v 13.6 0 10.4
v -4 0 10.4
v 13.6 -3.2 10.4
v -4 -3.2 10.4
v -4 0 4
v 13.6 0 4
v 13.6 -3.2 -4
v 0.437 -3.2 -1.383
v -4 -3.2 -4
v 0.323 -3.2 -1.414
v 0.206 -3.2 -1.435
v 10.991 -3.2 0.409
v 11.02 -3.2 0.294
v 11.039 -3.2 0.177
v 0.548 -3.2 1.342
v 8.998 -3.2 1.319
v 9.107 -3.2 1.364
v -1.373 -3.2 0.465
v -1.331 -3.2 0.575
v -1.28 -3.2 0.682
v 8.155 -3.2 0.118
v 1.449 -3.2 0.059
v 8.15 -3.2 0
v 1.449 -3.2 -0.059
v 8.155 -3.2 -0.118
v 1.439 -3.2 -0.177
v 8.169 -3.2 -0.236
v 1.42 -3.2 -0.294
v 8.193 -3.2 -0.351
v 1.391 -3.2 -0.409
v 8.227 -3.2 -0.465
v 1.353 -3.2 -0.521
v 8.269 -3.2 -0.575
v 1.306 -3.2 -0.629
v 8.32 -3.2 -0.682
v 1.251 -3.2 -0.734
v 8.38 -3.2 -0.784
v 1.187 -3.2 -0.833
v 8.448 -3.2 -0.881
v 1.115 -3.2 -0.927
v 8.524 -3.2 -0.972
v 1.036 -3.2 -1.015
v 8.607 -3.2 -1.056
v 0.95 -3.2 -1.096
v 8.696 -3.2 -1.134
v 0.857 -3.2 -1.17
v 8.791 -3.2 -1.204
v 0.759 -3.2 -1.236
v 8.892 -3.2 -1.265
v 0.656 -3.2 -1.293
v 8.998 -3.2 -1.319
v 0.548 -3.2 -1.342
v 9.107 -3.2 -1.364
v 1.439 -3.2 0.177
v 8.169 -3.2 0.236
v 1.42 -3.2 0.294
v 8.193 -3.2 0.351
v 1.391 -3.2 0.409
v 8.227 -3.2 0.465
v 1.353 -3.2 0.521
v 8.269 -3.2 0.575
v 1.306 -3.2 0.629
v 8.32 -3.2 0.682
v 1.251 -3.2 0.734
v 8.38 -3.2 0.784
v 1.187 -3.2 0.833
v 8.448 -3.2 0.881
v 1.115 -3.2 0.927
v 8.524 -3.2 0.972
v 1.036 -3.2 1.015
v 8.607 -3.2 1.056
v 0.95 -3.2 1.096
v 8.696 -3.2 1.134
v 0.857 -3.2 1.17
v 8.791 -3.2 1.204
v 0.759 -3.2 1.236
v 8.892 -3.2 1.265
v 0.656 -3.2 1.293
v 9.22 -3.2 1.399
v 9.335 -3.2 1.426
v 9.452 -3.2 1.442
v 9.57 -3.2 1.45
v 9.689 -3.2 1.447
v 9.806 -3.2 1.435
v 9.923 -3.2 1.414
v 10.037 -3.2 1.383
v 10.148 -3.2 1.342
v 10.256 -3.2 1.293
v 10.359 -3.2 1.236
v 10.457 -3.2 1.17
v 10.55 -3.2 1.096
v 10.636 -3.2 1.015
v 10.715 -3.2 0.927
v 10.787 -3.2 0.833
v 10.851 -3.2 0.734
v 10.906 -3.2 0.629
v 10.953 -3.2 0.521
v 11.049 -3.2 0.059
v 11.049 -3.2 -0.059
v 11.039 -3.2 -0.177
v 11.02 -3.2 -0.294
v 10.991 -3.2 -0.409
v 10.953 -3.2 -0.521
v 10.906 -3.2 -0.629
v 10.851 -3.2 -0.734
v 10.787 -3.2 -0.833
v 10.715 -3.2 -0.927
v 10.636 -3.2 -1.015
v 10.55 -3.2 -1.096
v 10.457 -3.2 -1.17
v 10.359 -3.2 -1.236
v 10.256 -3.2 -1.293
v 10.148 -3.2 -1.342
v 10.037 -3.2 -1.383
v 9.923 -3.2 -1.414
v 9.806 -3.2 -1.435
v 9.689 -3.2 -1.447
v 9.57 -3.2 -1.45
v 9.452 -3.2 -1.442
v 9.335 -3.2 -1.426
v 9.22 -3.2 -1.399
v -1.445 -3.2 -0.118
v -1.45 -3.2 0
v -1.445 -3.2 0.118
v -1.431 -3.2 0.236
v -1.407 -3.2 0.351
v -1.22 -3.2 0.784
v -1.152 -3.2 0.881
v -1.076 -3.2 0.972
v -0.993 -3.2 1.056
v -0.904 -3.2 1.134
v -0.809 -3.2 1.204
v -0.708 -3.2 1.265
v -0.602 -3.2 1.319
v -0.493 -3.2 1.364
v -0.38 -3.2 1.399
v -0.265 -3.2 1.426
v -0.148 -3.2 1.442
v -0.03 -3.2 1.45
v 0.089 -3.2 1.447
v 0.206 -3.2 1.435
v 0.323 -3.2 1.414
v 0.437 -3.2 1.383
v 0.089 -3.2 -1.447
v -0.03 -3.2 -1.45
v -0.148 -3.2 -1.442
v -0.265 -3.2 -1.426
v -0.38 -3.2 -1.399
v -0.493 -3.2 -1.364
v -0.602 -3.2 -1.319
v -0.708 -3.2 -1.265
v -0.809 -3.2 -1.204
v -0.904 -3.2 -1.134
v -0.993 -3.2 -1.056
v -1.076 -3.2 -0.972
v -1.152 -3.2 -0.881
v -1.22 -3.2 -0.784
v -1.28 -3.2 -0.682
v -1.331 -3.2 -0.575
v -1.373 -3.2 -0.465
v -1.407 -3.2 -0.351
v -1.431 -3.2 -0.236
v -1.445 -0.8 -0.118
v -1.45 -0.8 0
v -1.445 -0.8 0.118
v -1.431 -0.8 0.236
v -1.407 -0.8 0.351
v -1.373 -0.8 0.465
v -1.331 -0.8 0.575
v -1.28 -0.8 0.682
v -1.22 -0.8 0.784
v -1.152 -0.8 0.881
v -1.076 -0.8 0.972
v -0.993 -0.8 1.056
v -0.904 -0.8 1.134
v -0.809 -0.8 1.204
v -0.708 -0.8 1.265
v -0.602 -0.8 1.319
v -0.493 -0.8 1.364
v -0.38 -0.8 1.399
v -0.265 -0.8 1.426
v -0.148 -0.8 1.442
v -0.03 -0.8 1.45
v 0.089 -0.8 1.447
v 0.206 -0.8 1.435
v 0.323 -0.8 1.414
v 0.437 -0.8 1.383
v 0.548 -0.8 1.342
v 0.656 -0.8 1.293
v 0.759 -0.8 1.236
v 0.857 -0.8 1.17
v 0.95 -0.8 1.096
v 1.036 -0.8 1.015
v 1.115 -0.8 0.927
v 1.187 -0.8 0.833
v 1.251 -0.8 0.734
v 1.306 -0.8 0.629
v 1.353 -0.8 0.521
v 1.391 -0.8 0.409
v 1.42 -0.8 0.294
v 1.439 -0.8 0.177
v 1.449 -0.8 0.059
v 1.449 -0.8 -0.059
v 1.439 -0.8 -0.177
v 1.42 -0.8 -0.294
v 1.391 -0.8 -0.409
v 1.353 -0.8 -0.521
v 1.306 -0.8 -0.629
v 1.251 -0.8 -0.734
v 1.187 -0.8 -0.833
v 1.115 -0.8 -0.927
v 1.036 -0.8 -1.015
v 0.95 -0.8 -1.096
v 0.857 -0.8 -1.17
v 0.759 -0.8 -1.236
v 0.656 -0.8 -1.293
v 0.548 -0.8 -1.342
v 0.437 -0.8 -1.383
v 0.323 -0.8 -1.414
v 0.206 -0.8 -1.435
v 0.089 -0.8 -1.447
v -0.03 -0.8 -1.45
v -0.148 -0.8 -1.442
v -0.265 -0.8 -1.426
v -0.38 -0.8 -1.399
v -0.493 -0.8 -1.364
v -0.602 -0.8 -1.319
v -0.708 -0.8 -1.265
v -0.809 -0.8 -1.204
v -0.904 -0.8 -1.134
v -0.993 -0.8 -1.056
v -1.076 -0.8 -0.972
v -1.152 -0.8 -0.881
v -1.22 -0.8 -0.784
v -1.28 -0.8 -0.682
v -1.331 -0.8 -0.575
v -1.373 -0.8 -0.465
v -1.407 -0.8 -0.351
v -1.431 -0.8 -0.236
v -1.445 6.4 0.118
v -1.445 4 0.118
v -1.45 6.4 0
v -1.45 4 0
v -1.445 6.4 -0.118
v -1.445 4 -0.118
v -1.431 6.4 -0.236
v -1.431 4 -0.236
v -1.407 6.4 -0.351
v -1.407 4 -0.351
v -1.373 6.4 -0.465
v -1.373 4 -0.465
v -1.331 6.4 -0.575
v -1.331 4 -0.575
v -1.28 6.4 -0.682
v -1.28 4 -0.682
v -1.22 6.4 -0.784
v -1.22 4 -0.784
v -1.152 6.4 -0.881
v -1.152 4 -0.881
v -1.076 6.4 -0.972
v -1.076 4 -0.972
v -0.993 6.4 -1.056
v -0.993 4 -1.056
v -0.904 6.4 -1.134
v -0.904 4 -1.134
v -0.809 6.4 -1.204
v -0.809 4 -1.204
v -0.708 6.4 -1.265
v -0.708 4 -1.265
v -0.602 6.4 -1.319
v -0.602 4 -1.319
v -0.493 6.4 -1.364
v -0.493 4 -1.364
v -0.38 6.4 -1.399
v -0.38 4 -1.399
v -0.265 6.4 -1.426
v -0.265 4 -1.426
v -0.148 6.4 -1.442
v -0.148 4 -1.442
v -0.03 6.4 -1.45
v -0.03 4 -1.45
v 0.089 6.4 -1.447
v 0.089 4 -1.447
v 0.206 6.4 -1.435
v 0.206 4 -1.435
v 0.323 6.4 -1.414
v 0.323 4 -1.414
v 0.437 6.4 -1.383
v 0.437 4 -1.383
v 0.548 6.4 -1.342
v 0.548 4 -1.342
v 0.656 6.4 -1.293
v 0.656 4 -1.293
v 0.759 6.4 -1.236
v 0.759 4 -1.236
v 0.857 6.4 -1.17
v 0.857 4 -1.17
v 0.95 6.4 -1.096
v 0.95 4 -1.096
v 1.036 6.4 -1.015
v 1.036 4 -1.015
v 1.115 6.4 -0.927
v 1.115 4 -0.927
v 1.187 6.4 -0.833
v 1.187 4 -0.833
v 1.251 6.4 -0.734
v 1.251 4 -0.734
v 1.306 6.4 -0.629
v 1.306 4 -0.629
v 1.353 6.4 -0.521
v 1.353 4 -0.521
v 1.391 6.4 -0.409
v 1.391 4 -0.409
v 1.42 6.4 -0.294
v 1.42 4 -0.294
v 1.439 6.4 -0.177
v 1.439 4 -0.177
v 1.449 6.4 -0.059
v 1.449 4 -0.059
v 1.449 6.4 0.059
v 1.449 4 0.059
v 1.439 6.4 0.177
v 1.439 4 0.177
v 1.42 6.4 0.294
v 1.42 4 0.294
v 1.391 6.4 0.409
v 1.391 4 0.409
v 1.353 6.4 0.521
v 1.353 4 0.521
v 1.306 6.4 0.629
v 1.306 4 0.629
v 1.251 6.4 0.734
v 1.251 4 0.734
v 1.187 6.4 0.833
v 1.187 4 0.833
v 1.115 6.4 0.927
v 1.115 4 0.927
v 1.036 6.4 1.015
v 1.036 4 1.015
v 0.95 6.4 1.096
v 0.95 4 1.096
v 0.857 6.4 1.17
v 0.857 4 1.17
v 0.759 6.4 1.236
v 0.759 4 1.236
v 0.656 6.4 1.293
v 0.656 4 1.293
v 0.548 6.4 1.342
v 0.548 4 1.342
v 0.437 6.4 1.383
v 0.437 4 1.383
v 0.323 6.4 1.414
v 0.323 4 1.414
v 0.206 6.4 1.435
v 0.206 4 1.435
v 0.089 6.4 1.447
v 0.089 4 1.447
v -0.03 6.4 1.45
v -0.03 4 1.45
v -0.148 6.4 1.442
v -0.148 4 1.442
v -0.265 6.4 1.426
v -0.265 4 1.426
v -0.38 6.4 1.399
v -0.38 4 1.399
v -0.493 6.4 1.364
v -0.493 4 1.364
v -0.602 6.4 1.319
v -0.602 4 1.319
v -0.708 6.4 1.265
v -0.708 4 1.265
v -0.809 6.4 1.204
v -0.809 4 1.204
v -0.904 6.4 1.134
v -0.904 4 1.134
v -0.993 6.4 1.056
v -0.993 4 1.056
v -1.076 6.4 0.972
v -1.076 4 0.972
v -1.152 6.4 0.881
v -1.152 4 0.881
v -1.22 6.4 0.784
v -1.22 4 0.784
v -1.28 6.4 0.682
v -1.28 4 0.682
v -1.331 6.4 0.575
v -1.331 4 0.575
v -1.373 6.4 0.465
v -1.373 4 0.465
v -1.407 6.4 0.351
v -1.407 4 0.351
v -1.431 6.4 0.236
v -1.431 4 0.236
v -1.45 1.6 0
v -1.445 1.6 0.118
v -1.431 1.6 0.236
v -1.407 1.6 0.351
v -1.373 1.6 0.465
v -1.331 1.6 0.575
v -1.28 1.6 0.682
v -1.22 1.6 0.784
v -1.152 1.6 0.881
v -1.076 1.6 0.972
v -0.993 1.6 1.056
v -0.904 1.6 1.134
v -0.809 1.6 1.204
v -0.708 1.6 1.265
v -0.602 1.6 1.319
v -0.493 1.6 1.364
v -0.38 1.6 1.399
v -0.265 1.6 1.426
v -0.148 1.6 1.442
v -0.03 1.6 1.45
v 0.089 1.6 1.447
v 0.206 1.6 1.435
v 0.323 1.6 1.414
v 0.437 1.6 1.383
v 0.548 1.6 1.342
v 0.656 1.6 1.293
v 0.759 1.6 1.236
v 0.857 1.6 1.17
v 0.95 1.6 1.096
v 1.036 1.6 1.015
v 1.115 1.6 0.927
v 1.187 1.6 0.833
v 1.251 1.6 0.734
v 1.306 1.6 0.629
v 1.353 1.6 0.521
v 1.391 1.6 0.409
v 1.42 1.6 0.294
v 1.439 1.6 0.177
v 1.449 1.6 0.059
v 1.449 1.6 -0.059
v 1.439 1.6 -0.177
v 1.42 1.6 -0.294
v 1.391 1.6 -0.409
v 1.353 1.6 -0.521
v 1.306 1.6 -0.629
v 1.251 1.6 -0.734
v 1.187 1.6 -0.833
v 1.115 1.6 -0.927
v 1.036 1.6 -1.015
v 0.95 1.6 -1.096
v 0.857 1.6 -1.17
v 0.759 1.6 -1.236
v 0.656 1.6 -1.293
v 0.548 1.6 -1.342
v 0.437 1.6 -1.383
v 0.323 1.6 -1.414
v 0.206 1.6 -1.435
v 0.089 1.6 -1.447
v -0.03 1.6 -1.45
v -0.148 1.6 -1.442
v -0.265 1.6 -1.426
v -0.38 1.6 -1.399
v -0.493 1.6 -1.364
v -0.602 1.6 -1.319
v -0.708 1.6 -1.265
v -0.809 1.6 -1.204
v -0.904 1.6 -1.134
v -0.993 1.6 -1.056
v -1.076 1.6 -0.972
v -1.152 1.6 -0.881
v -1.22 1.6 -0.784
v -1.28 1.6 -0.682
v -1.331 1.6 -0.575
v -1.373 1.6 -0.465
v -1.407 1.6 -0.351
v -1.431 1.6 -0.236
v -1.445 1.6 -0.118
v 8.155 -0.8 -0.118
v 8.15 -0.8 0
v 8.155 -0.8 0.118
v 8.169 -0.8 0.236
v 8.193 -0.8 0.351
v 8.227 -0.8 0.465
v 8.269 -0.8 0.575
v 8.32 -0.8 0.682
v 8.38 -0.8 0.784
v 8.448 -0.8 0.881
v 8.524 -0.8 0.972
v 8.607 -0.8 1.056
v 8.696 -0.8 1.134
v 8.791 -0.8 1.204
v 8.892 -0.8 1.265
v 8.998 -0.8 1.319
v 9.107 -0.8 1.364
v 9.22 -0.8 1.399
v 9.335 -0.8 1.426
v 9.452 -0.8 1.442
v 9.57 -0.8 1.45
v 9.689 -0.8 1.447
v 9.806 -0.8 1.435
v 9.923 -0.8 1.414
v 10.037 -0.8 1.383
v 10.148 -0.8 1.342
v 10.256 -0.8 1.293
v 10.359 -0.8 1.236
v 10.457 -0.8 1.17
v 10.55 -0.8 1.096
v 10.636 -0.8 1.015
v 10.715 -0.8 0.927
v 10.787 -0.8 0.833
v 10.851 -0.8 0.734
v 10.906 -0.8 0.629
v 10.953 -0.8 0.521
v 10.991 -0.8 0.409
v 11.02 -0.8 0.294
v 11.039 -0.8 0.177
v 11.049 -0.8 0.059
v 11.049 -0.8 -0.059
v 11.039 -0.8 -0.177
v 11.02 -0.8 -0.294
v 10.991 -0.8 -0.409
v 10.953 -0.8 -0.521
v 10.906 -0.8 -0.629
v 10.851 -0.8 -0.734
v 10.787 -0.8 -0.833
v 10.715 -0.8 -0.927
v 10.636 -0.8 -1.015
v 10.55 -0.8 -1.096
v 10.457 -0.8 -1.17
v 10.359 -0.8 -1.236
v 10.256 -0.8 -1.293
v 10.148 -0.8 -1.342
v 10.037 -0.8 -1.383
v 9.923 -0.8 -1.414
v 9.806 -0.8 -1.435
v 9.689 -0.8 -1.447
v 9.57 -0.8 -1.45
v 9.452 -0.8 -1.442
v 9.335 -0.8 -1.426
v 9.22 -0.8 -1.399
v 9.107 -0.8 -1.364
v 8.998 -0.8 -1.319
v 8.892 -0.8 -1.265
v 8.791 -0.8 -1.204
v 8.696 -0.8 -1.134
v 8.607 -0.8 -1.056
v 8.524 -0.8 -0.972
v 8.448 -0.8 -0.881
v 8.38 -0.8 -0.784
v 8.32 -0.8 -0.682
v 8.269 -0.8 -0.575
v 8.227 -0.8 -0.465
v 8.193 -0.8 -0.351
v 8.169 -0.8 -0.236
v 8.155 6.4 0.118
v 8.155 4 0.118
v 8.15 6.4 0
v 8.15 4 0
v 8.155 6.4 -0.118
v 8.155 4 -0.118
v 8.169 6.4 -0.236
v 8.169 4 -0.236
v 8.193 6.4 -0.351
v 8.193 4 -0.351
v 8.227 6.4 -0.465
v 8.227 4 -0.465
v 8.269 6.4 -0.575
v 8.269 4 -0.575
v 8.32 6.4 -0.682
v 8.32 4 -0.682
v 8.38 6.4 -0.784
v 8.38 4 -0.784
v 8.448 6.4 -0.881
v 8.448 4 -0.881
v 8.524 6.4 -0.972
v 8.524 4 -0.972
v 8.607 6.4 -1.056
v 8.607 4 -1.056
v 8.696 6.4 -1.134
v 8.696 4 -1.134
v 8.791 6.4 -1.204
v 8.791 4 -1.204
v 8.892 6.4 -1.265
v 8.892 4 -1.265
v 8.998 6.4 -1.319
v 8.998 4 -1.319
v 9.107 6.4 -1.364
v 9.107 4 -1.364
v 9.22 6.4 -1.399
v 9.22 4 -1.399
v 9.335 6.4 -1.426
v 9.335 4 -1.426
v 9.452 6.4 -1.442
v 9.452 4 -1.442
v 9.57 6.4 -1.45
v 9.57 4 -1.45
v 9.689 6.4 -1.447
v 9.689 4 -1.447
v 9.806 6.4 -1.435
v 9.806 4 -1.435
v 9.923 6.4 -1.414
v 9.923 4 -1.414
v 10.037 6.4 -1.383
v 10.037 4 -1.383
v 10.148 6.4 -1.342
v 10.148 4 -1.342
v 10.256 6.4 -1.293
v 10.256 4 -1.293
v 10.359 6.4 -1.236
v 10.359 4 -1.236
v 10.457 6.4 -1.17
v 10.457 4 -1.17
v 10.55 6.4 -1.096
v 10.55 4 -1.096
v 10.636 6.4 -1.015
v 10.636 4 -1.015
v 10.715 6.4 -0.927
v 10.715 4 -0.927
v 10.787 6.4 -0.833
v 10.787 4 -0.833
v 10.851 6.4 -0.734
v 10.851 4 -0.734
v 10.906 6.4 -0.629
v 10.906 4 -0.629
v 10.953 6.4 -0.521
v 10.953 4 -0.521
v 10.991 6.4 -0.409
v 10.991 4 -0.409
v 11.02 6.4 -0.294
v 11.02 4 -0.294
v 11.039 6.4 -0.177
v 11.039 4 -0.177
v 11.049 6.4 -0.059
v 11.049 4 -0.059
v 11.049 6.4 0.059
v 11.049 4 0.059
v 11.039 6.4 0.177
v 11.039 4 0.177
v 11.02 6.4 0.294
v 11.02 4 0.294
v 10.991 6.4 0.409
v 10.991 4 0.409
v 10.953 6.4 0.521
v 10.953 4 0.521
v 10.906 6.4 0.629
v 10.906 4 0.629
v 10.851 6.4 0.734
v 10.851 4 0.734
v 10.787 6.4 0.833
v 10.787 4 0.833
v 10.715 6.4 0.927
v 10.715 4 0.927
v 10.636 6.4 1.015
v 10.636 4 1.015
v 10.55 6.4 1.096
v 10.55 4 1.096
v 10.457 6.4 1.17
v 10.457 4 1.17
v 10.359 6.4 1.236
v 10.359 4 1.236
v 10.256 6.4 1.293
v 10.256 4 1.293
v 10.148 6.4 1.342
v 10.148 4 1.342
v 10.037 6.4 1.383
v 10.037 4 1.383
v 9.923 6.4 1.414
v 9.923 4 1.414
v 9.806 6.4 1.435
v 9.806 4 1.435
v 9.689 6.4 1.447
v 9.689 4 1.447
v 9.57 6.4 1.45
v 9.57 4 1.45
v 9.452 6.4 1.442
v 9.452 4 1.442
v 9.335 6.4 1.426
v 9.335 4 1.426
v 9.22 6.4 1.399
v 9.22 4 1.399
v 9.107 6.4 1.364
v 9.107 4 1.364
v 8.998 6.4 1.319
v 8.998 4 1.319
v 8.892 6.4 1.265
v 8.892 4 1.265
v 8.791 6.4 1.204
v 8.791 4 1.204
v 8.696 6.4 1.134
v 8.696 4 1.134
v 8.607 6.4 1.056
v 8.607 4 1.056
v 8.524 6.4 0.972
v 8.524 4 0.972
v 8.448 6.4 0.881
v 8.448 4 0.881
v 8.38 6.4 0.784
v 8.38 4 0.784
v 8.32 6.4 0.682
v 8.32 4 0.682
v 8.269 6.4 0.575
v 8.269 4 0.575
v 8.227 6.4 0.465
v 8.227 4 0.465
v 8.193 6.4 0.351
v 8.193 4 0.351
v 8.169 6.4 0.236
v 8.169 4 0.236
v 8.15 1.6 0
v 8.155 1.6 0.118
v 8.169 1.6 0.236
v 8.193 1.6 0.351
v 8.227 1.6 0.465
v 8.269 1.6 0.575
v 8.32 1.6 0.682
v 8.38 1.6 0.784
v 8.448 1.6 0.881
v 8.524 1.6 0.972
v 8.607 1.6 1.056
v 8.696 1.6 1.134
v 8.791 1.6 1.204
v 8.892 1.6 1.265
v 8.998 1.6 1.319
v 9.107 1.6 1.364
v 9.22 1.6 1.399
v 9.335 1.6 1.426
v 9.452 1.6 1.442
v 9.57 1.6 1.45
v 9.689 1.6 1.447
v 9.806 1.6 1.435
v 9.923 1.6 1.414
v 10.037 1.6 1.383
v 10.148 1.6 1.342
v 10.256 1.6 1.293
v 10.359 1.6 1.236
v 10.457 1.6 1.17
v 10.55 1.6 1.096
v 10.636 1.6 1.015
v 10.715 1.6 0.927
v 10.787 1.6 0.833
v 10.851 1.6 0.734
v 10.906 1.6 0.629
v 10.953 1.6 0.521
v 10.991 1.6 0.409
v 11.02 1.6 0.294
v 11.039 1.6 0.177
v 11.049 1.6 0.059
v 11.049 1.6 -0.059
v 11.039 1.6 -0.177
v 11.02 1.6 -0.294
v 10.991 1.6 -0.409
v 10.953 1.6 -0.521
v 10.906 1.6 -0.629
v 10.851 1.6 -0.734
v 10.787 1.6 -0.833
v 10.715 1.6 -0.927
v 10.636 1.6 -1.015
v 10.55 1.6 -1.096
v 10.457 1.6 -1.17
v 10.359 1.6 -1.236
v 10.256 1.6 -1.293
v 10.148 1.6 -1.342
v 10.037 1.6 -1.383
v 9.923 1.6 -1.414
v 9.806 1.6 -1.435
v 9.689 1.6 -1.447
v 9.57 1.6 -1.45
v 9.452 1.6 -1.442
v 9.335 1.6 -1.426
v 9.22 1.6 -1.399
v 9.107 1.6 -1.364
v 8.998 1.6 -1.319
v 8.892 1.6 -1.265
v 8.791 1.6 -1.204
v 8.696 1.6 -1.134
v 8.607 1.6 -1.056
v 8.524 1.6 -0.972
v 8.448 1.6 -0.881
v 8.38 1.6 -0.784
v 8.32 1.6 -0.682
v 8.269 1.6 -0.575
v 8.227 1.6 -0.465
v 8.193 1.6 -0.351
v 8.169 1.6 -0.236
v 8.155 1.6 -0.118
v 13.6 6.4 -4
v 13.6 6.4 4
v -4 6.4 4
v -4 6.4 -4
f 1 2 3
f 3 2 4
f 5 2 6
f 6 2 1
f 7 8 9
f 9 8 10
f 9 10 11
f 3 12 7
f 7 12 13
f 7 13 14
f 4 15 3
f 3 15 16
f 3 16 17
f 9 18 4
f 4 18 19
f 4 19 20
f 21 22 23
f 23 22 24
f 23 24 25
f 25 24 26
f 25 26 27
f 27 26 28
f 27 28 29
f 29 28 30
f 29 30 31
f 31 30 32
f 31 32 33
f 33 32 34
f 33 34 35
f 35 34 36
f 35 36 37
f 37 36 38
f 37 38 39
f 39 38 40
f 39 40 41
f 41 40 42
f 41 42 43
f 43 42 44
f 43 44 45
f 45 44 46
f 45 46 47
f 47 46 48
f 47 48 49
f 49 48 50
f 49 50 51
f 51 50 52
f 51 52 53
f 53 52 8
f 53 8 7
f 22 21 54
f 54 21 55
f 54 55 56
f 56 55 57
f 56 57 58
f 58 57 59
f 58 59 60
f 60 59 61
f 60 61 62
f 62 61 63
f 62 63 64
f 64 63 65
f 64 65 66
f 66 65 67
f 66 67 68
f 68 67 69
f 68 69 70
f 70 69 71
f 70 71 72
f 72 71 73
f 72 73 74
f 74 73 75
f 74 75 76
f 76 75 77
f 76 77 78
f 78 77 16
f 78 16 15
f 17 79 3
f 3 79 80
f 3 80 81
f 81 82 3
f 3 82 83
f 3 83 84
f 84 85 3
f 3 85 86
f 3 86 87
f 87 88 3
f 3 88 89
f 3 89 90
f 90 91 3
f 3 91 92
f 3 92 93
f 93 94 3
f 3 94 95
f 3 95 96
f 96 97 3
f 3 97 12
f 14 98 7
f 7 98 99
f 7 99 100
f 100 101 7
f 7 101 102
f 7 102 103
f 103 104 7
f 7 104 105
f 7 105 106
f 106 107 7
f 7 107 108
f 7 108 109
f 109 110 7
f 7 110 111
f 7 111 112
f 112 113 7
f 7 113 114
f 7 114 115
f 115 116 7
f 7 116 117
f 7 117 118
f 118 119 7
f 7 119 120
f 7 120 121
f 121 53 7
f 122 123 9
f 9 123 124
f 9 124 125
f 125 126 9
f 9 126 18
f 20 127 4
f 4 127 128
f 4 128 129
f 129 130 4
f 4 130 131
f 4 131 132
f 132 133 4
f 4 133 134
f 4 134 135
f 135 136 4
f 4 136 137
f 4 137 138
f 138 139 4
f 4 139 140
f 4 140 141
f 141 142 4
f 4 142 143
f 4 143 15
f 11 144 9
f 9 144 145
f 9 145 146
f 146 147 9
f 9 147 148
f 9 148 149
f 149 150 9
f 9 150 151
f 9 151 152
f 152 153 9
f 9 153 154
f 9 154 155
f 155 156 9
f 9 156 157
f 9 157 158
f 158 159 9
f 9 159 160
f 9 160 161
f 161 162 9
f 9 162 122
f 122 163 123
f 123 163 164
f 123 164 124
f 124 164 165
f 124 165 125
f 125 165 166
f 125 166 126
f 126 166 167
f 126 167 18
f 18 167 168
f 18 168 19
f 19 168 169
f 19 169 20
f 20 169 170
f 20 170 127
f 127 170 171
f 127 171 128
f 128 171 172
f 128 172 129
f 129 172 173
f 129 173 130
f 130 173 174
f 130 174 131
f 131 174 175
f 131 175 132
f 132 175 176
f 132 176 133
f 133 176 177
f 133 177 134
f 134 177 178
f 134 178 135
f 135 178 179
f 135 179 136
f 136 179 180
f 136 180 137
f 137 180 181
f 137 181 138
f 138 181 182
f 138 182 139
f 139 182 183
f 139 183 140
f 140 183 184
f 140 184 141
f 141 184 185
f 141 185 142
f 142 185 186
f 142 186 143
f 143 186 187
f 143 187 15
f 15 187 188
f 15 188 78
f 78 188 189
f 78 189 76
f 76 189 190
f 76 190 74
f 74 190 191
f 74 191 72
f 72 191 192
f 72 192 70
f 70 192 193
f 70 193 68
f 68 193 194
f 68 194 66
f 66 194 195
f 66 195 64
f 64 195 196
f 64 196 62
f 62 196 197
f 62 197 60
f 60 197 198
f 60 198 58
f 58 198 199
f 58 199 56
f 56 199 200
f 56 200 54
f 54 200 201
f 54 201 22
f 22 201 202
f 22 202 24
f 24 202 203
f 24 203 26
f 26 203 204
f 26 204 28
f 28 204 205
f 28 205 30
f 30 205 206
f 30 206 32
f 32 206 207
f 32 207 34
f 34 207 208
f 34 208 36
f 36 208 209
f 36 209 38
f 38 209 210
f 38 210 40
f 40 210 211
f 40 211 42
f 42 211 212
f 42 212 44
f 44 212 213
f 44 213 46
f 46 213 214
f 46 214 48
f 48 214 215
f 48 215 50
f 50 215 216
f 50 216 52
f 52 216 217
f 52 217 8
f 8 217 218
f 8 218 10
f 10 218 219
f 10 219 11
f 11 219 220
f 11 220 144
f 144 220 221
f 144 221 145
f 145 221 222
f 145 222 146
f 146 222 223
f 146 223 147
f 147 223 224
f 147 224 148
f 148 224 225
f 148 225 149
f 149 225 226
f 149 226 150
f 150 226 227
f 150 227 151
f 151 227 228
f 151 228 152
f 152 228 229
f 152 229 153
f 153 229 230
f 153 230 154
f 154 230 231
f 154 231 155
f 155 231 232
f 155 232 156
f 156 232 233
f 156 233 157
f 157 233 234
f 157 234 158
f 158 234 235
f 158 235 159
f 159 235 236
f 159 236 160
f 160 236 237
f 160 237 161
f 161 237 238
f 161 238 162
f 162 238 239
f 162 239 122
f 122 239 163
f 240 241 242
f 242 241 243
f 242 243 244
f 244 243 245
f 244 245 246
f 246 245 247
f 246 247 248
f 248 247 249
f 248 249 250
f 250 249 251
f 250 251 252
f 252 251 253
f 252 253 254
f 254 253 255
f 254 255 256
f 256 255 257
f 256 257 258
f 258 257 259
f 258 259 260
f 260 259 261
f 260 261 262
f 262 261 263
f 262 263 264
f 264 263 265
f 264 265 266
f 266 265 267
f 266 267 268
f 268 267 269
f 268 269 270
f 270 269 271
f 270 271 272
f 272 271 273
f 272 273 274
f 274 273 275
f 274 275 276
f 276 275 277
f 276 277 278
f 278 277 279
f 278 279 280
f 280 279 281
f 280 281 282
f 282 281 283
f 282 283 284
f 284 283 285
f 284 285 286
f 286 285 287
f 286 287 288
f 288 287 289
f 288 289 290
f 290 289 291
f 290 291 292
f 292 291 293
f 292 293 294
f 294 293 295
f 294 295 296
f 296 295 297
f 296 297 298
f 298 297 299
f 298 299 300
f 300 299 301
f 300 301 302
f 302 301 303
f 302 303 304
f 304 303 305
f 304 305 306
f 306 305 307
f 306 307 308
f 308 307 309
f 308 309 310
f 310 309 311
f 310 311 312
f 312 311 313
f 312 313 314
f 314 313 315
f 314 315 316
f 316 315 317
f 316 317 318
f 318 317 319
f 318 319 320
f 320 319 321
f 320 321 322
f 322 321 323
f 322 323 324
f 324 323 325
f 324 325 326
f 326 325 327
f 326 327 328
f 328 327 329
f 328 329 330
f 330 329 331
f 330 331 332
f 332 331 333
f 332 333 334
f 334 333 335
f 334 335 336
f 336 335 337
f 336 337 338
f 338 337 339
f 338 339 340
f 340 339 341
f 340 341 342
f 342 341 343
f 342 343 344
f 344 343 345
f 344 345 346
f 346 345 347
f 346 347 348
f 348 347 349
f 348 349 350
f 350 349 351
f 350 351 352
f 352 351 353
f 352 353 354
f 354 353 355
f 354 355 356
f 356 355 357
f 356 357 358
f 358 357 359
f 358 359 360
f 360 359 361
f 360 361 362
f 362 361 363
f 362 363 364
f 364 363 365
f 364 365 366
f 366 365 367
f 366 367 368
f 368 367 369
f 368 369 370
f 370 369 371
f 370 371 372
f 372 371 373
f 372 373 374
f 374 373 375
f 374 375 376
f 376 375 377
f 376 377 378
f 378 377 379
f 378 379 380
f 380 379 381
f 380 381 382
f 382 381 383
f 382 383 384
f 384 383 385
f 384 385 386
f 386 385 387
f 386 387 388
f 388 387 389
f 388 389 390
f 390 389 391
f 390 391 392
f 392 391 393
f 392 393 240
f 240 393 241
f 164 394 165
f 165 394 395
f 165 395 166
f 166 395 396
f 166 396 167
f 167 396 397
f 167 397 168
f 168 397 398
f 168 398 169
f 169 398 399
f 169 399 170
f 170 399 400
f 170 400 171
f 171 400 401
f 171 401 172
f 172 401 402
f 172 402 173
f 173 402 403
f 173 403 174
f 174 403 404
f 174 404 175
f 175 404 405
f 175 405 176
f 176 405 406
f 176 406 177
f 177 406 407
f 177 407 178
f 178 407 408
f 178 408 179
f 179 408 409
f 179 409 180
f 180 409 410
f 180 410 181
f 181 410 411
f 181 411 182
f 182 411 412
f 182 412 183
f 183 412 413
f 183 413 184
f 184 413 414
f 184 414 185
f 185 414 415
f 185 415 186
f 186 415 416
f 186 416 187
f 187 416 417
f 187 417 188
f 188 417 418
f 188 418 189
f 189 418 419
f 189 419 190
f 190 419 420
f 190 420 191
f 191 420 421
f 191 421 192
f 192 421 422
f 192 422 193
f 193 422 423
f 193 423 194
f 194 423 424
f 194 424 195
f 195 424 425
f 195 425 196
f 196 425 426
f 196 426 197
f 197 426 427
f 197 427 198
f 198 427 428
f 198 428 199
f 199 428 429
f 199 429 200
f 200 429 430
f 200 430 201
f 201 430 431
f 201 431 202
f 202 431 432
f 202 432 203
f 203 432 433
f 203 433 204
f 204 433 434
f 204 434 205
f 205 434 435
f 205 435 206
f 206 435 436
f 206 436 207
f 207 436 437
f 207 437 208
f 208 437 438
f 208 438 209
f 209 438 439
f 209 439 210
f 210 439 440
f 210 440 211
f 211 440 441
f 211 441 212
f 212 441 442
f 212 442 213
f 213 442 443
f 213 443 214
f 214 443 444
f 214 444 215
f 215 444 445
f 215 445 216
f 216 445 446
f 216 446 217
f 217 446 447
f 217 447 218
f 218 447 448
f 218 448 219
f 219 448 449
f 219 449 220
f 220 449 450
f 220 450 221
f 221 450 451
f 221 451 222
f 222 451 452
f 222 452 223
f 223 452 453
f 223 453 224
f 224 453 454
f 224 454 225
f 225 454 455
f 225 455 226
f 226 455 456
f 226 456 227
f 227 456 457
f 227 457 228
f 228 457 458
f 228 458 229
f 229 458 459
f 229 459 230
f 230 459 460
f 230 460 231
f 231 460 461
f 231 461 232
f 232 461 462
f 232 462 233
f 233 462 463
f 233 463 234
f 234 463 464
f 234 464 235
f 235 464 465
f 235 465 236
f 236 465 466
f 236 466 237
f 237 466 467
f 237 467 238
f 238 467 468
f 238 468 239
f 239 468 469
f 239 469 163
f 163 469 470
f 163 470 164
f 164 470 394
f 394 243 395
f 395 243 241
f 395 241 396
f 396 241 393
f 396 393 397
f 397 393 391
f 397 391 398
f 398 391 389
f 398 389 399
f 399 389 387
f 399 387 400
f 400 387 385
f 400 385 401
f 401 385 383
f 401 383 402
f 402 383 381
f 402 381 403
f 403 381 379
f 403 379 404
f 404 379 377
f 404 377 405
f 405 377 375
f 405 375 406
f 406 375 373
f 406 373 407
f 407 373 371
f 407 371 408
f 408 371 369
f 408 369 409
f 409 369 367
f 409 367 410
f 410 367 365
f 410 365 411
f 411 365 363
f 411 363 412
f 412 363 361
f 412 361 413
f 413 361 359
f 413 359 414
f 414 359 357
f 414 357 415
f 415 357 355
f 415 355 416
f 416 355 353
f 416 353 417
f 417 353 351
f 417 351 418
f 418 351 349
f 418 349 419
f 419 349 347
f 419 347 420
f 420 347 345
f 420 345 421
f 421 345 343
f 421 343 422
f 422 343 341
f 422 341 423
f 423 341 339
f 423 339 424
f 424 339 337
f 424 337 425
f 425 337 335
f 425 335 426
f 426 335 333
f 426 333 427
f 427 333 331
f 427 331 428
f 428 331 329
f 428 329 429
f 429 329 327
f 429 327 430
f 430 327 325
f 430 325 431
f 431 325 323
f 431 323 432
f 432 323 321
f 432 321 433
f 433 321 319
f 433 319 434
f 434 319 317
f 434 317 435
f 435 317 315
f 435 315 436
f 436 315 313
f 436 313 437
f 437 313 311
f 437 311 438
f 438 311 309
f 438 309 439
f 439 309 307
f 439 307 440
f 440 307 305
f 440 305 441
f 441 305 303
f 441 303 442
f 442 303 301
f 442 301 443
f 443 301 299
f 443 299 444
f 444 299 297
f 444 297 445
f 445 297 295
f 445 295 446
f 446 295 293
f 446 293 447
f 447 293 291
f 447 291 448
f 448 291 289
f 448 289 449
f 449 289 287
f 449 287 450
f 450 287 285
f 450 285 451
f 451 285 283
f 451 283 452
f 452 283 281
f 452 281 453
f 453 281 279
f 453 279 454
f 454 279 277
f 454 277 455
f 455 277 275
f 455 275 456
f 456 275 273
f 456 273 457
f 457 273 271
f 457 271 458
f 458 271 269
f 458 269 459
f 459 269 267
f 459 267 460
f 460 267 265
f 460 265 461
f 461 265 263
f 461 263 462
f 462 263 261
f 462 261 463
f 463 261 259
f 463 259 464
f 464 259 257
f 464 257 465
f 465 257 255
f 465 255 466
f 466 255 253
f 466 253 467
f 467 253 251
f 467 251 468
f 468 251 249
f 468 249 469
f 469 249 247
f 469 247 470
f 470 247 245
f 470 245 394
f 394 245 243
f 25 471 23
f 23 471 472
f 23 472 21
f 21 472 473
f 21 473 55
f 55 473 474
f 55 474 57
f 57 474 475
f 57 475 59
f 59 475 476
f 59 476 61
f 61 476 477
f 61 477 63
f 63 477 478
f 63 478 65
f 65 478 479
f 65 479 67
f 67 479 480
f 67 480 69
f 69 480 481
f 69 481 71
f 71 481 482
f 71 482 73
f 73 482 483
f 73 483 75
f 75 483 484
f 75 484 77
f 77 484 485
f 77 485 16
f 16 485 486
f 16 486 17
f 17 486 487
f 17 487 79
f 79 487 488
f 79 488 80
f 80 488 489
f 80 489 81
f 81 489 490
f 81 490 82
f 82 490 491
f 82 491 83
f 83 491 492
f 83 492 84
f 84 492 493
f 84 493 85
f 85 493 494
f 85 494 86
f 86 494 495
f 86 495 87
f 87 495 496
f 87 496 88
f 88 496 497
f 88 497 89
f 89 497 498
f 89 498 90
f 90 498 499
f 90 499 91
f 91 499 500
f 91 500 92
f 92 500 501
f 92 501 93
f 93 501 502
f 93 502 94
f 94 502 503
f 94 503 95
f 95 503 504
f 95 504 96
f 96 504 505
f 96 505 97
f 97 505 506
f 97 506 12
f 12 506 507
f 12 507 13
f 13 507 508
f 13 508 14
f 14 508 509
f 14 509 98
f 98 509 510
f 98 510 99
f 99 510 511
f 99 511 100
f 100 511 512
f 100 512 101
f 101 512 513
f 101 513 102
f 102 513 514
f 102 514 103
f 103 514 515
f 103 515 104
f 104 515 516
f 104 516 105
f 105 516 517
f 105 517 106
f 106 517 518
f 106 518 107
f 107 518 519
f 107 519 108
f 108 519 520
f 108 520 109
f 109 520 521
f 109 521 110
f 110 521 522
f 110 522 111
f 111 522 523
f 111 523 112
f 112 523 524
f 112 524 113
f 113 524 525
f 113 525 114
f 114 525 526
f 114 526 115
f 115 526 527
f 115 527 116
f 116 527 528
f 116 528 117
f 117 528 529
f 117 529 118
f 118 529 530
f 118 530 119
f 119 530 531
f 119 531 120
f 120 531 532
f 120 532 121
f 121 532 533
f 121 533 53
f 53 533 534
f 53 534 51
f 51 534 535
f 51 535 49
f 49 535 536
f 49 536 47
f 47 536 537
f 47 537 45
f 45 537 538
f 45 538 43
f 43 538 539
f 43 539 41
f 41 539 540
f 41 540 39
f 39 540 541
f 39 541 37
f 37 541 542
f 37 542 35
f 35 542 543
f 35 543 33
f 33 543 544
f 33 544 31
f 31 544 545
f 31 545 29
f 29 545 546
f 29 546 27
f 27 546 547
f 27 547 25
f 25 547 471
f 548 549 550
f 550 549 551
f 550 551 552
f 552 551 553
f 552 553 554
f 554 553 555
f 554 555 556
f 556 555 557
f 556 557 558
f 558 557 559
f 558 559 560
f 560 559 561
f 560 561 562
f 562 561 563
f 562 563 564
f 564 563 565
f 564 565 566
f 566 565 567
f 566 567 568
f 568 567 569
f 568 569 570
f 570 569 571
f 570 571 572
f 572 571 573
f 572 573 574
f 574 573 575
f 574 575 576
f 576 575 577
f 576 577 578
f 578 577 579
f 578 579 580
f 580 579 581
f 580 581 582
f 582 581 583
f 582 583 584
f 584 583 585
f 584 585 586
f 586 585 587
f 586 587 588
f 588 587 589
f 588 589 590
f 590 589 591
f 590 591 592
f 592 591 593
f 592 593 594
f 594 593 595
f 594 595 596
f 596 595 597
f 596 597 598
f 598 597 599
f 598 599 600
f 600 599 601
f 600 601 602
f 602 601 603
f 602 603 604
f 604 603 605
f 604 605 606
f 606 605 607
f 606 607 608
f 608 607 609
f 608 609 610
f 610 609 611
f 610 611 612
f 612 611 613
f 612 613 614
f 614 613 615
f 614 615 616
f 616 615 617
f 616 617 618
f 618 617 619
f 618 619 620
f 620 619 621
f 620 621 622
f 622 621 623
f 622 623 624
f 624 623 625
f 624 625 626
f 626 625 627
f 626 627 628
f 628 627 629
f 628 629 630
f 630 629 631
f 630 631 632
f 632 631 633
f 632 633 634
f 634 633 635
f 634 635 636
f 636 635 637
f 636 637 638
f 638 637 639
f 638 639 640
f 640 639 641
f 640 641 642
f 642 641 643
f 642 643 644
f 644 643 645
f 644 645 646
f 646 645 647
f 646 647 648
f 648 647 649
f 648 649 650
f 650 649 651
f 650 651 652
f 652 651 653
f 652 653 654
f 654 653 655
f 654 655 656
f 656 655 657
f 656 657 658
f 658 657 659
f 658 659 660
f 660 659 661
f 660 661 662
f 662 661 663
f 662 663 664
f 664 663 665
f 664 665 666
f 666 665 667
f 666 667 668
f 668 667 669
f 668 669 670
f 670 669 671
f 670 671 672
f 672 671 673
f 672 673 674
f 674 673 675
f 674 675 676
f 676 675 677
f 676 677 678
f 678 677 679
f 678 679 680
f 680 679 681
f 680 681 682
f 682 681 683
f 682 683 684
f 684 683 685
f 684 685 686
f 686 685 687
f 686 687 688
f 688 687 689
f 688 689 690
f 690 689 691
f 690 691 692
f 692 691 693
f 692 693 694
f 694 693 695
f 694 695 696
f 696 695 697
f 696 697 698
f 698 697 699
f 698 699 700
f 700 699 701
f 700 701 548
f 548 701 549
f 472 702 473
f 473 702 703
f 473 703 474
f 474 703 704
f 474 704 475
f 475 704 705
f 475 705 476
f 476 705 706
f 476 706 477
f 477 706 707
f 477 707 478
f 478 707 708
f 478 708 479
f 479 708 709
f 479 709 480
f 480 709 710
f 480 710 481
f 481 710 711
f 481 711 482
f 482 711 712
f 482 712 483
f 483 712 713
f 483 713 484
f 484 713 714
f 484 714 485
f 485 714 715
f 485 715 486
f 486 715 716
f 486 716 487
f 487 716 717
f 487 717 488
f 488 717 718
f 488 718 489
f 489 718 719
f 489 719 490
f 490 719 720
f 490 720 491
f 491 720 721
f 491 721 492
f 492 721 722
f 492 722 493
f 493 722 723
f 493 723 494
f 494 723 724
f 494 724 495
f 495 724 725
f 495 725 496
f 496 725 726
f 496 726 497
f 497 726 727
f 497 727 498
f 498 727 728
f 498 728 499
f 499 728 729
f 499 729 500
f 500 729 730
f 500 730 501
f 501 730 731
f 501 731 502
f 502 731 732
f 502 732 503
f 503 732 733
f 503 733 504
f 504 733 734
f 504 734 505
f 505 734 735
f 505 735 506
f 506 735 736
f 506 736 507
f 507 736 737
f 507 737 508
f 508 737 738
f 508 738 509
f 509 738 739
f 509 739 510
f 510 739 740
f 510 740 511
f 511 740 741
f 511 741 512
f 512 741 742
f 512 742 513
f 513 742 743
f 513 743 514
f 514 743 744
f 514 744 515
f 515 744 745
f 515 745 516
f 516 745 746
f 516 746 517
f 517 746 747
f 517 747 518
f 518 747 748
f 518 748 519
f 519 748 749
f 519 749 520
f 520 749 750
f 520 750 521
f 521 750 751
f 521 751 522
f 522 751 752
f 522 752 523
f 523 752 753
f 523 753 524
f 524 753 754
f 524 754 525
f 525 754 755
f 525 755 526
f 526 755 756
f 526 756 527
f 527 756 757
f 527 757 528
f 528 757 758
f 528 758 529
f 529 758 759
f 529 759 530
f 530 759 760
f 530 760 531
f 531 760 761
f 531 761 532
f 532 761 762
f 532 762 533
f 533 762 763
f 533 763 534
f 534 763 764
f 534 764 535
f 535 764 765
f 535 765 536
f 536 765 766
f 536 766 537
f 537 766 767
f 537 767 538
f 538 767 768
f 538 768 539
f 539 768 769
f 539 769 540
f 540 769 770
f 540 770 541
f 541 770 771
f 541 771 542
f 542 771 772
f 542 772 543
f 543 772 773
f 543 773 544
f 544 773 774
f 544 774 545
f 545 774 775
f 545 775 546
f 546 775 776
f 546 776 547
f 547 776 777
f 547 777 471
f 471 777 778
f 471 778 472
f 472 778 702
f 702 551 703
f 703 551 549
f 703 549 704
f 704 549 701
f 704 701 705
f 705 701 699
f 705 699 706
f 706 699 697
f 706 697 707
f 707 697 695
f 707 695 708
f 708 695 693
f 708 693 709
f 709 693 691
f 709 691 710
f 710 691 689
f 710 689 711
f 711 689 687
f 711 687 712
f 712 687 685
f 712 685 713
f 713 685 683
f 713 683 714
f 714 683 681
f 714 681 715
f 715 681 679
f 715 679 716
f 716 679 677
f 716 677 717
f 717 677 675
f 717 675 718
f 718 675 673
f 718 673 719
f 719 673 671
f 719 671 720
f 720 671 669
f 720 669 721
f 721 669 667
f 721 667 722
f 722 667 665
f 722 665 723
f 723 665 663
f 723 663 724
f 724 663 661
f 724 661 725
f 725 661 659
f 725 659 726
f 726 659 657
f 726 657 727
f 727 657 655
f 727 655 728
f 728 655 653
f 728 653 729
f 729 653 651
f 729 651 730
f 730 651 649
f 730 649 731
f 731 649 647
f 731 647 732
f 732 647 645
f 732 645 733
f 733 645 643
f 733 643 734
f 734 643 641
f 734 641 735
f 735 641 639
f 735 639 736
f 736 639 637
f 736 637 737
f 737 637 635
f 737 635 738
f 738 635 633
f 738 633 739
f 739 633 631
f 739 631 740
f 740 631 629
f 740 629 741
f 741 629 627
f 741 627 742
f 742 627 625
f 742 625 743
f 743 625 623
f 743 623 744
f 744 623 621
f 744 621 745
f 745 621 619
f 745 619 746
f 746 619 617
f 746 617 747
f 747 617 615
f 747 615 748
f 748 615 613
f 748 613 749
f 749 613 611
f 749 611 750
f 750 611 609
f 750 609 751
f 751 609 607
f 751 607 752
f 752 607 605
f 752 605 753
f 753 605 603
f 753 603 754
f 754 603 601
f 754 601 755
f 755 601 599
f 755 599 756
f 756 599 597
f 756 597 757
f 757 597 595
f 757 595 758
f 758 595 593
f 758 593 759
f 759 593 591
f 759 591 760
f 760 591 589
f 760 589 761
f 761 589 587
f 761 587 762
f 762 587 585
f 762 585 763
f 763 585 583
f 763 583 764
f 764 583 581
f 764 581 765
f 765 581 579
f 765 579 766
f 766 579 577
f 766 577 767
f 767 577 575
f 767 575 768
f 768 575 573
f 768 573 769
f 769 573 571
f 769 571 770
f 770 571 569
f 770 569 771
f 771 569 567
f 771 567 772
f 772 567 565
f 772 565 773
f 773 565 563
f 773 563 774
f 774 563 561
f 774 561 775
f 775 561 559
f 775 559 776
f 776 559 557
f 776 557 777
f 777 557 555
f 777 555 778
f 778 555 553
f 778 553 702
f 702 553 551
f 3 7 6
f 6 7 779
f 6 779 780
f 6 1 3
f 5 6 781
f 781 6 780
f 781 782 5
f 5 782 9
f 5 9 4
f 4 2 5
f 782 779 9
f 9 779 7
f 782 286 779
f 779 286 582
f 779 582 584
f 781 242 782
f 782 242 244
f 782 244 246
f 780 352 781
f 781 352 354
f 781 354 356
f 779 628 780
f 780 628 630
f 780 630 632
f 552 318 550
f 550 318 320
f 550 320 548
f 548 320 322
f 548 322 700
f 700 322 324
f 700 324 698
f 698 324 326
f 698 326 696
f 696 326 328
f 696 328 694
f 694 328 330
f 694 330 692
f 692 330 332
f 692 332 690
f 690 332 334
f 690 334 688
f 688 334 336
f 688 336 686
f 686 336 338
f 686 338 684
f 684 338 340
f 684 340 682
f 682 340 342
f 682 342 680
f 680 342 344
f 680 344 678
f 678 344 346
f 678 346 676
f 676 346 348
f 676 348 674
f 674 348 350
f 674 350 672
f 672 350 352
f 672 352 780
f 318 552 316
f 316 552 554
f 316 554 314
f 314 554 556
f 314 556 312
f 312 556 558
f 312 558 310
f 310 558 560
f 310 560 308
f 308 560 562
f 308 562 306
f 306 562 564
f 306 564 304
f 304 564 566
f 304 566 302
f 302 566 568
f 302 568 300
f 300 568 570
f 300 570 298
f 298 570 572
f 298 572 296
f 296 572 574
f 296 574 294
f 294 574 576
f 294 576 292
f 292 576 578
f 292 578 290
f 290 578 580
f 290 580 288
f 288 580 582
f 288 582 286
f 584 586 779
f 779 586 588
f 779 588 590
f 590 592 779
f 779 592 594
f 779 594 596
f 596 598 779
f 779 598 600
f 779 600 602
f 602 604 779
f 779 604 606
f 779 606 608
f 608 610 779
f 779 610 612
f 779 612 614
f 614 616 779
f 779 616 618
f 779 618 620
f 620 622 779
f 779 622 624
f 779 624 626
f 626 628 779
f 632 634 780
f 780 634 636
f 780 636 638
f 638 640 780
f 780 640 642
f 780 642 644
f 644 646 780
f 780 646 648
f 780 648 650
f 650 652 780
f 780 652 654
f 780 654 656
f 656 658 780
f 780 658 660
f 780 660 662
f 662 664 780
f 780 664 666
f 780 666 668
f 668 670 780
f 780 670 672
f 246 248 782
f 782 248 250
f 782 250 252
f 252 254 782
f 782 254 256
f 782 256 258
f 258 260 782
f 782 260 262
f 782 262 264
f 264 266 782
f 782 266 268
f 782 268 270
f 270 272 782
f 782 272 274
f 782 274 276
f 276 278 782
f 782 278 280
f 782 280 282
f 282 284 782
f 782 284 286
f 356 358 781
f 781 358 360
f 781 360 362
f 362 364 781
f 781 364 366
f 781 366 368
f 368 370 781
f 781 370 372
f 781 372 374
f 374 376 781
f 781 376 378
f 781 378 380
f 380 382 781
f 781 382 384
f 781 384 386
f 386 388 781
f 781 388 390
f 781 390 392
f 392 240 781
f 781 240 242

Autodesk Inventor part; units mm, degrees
ref_plane "YZ Plane" through (0, 0, 0) normal (1, 0, 0) x (0, 1, 0)
ref_plane "XZ Plane" through (0, 0, 0) normal (0, 1, 0) x (-1, 0, 0)
ref_plane "XY Plane" through (0, 0, 0) normal (0, 0, 1) x (1, 0, 0)
sketch "Sketch1" plane through (0, 0, 0) normal (0, 1, 0) x (-1, 0, 0)
  line L0 (0, 0) -> (-9.6, 0)
  circle A0 centre (0, 0) radius 1.45
  circle A1 centre (-9.6, 0) radius 1.45
  line L1 (0, 0) -> (4, 0)
  line L2 (4, 0) -> (4, -4)
  line L3 (-9.6, 0) -> (-13.6, 0)
  line L4 (-13.6, 0) -> (-13.6, 4)
  line L5 (4, -4) -> (-13.6, -4)
  line L6 (-13.6, -4) -> (-13.6, 4)
  line L7 (-13.6, 4) -> (4, 4)
  line L8 (4, 4) -> (4, -4)
  line L9 (4, 4) -> (4, 10.4)
  line L10 (4, 10.4) -> (-13.6, 10.4)
  line L11 (-13.6, 10.4) -> (-13.6, 4)
  dimension "d0" = 9.6
  dimension "d1" = 2.9
  dimension "d4" = 4
  dimension "d7" = 6.4
extrude "Extrusion1" add sketch "Sketch1" along normal blind 6.4 contours A1 L3 L4 L7 L8 L1 A0 L0 | L0 A0 L1 L2 L5 L6 L3 A1
extrude "Extrusion2" add sketch "Sketch1" against normal blind 3.2 contours A1 L3 L4 L7 L8 L1 A0 L0 | L0 A0 L1 L2 L5 L6 L3 A1 | L11 L10 L9 L7
properties part number "deadbolt enclosure wall holder bracket"
